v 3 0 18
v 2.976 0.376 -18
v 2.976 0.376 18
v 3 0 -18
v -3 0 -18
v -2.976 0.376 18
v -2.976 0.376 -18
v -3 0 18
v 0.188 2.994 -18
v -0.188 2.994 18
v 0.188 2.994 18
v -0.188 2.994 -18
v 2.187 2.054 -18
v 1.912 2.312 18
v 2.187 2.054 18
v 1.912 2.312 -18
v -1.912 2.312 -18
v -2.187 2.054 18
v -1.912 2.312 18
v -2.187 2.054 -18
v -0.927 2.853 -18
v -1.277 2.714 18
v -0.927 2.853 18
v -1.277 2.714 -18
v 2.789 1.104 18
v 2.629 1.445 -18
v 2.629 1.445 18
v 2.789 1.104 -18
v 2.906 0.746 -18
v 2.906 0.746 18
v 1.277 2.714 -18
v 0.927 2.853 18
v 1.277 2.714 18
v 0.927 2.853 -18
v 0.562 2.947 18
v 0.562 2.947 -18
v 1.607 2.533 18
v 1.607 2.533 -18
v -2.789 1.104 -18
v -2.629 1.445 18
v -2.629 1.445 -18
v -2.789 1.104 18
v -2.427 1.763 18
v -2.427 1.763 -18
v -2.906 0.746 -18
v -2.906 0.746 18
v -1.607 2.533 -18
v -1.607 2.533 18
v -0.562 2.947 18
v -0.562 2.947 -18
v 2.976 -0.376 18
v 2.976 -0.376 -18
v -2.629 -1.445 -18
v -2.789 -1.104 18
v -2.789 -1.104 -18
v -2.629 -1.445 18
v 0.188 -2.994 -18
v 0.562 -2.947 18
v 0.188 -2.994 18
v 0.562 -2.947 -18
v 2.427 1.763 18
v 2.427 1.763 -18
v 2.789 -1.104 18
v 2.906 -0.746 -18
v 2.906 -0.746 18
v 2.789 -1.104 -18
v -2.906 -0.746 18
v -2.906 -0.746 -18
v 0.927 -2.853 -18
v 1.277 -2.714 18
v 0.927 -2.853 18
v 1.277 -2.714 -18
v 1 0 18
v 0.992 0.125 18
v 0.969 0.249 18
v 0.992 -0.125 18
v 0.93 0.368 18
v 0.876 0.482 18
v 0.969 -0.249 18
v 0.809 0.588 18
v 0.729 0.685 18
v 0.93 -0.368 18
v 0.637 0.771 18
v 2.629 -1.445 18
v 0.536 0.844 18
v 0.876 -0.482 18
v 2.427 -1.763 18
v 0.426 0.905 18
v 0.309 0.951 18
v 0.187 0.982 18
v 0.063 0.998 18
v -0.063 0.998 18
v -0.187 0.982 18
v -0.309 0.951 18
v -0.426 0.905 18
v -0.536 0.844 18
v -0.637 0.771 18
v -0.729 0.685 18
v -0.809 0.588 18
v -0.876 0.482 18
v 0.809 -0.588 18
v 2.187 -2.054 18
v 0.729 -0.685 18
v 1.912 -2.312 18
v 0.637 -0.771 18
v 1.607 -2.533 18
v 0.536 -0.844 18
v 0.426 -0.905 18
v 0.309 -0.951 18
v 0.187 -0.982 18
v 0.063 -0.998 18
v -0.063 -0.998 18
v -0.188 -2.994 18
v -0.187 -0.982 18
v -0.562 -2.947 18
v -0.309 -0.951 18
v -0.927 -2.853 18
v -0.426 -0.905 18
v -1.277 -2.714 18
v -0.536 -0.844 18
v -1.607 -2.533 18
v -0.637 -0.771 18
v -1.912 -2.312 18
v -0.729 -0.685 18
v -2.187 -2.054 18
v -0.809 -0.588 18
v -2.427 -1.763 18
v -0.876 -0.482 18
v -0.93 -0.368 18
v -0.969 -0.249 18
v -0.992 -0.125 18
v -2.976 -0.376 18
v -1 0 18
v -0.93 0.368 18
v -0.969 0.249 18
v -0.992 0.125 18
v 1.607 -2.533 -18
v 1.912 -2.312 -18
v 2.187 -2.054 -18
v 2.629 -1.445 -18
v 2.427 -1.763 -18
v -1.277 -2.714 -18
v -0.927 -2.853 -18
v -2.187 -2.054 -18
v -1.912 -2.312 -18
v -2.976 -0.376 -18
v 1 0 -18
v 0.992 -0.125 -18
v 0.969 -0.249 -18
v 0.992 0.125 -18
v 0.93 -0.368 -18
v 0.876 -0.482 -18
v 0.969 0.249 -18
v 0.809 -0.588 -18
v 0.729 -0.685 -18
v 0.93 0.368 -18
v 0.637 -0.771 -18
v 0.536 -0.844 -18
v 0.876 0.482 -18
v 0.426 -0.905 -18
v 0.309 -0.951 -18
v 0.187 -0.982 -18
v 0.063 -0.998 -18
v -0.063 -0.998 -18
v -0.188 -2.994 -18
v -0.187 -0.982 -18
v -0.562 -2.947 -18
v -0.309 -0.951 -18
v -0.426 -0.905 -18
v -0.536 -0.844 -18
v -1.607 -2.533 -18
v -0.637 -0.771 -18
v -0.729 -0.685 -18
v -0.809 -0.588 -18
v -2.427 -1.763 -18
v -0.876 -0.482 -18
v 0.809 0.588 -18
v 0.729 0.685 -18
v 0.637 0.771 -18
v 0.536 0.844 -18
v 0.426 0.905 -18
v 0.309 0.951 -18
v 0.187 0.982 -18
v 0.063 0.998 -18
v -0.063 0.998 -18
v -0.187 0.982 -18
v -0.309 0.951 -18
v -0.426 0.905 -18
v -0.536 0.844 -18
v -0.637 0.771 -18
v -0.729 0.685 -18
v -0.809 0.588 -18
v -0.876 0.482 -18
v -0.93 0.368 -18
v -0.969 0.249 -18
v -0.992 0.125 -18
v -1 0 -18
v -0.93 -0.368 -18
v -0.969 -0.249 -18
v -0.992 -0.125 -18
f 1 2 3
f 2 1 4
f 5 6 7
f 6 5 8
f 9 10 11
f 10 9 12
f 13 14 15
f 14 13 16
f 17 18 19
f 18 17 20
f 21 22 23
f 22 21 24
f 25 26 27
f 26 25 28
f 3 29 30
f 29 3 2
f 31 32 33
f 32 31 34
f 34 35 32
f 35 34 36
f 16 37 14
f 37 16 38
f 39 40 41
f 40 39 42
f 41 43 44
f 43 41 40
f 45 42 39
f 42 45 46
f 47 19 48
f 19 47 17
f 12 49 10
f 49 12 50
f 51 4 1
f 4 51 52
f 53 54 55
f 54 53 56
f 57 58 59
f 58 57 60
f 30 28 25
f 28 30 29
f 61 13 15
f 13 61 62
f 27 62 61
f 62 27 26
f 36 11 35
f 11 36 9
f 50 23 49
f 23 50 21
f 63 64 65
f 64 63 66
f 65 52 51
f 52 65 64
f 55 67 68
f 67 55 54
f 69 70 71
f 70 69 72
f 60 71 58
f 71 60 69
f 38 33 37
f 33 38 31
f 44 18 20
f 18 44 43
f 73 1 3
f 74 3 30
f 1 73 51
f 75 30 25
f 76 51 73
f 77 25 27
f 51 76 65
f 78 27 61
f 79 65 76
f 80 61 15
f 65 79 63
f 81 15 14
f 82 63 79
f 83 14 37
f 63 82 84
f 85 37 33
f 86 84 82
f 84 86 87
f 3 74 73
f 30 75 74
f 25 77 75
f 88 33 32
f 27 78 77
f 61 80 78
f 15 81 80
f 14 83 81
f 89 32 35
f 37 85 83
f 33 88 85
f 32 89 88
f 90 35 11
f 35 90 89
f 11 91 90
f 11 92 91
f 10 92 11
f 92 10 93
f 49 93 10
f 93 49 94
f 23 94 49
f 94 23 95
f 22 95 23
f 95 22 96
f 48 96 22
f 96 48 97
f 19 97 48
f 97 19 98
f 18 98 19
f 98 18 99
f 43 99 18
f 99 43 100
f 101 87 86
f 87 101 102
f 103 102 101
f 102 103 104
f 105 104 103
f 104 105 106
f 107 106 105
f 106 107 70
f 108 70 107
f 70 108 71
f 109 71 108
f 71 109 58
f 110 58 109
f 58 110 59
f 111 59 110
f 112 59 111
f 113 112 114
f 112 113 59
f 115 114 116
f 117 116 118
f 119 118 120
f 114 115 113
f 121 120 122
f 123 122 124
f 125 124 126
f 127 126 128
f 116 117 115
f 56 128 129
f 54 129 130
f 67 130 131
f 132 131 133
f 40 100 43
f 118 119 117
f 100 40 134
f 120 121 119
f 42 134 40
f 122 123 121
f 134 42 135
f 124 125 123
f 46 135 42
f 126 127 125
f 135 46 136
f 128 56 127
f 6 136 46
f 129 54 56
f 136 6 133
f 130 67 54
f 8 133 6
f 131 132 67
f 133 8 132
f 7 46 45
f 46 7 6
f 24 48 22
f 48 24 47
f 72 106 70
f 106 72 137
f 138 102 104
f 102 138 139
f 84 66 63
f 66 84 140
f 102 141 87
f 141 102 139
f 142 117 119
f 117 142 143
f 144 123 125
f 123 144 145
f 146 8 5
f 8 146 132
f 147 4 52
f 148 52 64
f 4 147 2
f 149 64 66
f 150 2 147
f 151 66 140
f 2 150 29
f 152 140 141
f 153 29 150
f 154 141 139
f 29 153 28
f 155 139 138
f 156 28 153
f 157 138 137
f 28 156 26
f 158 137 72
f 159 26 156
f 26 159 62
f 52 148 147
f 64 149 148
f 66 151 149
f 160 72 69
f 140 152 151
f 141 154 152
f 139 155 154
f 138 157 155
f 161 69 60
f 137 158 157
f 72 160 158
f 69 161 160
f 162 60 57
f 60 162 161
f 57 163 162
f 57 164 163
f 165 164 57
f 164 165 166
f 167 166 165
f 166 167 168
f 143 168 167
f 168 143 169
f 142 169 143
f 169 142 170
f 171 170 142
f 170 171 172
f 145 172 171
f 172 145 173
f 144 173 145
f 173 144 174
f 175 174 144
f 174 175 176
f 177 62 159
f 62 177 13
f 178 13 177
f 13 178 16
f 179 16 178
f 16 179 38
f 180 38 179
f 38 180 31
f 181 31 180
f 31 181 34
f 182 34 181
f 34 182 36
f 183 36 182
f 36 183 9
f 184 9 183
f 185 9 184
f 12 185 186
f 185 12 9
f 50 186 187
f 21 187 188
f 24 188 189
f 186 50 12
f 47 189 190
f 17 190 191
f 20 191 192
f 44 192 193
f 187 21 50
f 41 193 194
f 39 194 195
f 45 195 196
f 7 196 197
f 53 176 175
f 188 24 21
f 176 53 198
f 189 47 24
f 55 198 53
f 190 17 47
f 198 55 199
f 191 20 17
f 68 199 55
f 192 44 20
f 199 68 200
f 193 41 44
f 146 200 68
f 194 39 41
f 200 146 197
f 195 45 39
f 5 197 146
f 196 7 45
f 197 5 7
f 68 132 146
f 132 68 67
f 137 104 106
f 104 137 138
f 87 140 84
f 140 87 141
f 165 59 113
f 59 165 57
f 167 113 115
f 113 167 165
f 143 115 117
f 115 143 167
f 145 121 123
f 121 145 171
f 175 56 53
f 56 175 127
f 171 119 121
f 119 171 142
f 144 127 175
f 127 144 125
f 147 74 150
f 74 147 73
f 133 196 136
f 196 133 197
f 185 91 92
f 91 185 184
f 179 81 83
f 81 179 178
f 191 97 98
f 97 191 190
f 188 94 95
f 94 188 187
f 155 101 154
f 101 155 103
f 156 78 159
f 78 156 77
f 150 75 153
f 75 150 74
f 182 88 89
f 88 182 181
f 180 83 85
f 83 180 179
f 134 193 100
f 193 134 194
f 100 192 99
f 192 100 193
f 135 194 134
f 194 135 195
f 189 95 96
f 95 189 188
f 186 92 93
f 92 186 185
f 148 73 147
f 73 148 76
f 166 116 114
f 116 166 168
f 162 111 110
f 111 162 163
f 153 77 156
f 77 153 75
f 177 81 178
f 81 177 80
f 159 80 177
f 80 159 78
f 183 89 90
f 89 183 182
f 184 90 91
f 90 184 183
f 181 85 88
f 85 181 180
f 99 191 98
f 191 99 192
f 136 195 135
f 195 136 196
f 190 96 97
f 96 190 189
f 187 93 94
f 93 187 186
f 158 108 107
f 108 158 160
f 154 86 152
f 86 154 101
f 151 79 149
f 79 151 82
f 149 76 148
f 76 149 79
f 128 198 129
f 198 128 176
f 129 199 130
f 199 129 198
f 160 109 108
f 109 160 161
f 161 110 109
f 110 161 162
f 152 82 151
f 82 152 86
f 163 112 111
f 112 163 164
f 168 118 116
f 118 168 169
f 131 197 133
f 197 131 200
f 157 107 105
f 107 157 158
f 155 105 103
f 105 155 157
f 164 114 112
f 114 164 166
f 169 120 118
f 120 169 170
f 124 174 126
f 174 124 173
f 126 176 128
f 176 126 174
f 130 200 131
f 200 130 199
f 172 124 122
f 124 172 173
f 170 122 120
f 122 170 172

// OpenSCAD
$fn = 50;


difference() {
	union() {
		translate(v = [0, 0, -18.0000000000]) {
			cylinder(h = 36, r = 3.0000000000);
		}
	}
	union() {
		translate(v = [0, 0, -100.0000000000]) {
			cylinder(h = 200, r = 1.0000000000);
		}
	}
}
